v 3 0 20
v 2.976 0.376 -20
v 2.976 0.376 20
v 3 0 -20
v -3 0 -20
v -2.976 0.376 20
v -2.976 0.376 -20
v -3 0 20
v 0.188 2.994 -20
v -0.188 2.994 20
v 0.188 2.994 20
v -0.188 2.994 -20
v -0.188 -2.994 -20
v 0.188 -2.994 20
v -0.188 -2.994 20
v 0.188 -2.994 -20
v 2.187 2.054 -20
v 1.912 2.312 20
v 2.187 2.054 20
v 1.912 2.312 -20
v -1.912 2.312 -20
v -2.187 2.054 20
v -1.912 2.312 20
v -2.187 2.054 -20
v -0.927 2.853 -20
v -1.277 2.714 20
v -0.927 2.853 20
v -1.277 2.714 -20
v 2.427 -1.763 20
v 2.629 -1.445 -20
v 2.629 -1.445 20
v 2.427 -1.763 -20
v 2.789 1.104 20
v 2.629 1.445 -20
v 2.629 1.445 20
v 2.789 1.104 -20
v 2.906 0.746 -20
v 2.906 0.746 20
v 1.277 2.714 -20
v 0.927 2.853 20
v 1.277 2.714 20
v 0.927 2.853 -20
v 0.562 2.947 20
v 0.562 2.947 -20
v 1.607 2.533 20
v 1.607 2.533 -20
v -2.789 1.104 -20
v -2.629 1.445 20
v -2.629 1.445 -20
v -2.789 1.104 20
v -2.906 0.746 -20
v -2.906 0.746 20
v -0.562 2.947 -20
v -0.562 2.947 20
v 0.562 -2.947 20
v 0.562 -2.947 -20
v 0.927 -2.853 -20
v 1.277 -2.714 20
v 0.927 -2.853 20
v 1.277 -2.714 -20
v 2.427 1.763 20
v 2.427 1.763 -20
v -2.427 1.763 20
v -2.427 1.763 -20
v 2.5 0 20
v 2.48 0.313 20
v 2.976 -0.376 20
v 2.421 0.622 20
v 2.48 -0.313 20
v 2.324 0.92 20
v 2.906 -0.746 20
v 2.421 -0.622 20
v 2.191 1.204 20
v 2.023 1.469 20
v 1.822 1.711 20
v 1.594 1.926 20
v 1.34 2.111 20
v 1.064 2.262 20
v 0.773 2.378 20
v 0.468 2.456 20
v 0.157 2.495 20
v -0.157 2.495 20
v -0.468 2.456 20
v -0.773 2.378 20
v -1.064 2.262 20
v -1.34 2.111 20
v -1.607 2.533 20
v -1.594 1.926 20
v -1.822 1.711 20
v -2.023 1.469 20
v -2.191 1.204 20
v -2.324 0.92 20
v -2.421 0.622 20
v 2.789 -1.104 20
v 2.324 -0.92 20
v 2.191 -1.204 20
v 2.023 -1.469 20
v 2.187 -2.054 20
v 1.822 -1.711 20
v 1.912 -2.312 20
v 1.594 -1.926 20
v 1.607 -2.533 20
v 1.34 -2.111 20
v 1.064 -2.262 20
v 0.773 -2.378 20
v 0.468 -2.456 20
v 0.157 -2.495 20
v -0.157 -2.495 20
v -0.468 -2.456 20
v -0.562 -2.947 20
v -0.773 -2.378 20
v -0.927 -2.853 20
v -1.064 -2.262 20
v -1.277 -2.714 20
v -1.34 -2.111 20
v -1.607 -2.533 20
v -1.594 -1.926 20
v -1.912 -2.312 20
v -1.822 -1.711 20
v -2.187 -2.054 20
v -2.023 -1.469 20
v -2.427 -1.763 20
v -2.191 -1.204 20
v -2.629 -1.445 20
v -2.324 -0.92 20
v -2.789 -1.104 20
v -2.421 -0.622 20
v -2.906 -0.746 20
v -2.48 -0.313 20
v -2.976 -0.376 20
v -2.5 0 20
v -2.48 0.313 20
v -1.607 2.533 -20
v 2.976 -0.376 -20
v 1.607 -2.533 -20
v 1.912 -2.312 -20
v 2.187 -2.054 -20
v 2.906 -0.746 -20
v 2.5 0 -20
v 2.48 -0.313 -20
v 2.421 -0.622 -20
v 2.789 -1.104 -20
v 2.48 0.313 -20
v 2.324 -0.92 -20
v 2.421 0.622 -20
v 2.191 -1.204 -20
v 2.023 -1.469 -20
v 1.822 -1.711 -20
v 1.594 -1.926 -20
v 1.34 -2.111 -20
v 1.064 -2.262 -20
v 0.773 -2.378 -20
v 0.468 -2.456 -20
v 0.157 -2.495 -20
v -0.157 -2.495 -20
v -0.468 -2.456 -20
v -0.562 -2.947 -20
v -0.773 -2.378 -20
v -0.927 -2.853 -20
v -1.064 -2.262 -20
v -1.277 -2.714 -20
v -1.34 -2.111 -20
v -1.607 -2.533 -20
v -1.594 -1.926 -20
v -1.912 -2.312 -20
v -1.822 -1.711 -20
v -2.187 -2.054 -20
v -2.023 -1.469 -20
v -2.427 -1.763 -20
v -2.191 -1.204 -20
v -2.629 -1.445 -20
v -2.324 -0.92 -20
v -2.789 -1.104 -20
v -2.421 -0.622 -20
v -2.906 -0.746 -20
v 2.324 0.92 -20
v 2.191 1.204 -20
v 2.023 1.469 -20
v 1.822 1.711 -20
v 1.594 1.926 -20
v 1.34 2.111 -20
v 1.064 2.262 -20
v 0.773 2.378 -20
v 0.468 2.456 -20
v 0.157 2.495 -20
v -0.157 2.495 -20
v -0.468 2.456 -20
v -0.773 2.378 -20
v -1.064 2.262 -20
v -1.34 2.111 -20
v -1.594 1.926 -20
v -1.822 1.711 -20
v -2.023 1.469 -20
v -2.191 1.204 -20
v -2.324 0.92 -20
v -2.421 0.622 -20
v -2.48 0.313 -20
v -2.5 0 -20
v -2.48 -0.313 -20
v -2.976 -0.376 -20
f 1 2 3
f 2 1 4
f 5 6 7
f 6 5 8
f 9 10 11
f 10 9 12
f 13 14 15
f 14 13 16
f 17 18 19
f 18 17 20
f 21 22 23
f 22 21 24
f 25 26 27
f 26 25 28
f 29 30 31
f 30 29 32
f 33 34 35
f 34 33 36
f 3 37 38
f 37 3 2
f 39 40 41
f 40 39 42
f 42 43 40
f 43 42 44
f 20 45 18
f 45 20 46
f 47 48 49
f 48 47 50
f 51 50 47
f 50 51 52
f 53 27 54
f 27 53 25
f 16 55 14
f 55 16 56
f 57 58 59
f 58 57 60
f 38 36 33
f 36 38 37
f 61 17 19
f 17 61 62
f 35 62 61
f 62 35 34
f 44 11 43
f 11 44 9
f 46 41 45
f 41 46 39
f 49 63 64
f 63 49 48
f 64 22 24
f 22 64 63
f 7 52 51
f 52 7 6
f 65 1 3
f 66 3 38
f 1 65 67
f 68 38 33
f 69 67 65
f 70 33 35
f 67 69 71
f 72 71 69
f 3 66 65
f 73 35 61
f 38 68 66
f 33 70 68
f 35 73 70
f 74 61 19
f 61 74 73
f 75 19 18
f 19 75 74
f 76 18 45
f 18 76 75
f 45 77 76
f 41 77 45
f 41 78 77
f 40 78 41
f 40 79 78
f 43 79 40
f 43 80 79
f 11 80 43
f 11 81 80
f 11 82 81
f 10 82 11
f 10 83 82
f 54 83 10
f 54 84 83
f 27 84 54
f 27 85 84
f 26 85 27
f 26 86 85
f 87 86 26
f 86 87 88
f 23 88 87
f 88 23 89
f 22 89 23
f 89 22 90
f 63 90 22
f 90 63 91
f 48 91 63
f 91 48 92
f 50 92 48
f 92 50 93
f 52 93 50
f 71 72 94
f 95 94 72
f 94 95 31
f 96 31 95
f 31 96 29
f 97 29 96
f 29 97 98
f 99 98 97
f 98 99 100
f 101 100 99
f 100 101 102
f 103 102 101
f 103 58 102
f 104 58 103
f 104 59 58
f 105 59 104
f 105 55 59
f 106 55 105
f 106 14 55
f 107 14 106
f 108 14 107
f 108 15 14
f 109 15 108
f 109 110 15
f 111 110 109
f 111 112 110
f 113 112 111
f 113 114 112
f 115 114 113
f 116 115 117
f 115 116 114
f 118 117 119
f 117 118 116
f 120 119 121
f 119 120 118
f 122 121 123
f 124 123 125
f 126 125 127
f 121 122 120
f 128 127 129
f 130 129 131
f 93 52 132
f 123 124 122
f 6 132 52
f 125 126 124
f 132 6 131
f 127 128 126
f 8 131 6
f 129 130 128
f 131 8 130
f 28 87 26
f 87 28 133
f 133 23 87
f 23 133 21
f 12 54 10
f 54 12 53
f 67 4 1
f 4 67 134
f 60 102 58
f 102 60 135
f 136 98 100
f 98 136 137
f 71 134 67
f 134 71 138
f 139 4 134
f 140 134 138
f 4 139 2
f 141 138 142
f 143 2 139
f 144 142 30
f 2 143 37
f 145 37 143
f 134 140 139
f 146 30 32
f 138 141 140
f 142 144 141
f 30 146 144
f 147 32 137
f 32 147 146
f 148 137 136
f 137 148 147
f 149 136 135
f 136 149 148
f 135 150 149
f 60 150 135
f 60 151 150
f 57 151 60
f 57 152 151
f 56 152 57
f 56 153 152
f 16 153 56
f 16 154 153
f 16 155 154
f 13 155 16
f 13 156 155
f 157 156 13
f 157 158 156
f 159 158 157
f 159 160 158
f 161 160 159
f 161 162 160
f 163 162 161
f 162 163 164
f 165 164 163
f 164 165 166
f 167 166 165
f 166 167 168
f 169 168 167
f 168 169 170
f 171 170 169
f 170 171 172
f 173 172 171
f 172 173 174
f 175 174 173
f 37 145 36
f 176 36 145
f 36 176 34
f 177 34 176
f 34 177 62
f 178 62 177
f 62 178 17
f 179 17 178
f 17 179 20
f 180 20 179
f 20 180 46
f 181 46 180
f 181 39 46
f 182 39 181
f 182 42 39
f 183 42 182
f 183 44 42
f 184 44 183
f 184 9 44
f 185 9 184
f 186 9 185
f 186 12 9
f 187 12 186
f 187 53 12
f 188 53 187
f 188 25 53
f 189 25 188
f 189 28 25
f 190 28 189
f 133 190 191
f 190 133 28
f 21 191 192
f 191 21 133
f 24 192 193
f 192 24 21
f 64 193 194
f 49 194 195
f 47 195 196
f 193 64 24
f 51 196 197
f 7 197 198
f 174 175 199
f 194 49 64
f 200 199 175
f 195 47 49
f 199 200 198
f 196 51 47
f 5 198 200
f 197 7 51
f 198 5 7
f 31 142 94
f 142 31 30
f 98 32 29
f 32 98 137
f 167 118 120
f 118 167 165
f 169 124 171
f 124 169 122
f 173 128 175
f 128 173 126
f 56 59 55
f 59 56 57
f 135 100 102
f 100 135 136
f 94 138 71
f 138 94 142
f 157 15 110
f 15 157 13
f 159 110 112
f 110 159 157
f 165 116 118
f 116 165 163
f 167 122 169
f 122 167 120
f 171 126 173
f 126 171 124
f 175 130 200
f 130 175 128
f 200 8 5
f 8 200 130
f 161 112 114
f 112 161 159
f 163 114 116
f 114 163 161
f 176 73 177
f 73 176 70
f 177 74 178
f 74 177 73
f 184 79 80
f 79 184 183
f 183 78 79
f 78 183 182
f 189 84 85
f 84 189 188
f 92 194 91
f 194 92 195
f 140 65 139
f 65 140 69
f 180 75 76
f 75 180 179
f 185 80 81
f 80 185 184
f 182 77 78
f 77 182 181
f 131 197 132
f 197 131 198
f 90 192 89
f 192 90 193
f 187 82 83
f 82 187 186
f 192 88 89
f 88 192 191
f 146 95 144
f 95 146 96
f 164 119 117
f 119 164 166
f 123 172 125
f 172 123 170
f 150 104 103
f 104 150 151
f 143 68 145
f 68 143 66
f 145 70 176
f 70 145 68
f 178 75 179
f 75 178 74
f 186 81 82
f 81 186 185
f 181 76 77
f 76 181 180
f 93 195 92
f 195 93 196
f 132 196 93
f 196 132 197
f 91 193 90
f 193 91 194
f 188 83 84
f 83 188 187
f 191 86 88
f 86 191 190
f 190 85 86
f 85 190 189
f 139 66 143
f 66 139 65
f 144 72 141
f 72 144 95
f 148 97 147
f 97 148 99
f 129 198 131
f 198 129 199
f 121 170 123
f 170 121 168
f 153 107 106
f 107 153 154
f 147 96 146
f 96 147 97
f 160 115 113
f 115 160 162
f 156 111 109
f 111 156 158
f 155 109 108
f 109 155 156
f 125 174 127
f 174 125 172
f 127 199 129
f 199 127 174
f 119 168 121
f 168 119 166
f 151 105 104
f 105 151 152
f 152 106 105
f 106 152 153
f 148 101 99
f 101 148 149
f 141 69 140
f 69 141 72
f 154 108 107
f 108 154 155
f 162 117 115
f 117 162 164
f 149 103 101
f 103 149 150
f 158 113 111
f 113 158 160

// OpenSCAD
$fn = 50;


difference() {
	union() {
		translate(v = [0, 0, -20.0000000000]) {
			cylinder(h = 40, r = 3.0000000000);
		}
	}
	union() {
		translate(v = [0, 0, -100.0000000000]) {
			cylinder(h = 200, r = 2.5000000000);
		}
	}
}
